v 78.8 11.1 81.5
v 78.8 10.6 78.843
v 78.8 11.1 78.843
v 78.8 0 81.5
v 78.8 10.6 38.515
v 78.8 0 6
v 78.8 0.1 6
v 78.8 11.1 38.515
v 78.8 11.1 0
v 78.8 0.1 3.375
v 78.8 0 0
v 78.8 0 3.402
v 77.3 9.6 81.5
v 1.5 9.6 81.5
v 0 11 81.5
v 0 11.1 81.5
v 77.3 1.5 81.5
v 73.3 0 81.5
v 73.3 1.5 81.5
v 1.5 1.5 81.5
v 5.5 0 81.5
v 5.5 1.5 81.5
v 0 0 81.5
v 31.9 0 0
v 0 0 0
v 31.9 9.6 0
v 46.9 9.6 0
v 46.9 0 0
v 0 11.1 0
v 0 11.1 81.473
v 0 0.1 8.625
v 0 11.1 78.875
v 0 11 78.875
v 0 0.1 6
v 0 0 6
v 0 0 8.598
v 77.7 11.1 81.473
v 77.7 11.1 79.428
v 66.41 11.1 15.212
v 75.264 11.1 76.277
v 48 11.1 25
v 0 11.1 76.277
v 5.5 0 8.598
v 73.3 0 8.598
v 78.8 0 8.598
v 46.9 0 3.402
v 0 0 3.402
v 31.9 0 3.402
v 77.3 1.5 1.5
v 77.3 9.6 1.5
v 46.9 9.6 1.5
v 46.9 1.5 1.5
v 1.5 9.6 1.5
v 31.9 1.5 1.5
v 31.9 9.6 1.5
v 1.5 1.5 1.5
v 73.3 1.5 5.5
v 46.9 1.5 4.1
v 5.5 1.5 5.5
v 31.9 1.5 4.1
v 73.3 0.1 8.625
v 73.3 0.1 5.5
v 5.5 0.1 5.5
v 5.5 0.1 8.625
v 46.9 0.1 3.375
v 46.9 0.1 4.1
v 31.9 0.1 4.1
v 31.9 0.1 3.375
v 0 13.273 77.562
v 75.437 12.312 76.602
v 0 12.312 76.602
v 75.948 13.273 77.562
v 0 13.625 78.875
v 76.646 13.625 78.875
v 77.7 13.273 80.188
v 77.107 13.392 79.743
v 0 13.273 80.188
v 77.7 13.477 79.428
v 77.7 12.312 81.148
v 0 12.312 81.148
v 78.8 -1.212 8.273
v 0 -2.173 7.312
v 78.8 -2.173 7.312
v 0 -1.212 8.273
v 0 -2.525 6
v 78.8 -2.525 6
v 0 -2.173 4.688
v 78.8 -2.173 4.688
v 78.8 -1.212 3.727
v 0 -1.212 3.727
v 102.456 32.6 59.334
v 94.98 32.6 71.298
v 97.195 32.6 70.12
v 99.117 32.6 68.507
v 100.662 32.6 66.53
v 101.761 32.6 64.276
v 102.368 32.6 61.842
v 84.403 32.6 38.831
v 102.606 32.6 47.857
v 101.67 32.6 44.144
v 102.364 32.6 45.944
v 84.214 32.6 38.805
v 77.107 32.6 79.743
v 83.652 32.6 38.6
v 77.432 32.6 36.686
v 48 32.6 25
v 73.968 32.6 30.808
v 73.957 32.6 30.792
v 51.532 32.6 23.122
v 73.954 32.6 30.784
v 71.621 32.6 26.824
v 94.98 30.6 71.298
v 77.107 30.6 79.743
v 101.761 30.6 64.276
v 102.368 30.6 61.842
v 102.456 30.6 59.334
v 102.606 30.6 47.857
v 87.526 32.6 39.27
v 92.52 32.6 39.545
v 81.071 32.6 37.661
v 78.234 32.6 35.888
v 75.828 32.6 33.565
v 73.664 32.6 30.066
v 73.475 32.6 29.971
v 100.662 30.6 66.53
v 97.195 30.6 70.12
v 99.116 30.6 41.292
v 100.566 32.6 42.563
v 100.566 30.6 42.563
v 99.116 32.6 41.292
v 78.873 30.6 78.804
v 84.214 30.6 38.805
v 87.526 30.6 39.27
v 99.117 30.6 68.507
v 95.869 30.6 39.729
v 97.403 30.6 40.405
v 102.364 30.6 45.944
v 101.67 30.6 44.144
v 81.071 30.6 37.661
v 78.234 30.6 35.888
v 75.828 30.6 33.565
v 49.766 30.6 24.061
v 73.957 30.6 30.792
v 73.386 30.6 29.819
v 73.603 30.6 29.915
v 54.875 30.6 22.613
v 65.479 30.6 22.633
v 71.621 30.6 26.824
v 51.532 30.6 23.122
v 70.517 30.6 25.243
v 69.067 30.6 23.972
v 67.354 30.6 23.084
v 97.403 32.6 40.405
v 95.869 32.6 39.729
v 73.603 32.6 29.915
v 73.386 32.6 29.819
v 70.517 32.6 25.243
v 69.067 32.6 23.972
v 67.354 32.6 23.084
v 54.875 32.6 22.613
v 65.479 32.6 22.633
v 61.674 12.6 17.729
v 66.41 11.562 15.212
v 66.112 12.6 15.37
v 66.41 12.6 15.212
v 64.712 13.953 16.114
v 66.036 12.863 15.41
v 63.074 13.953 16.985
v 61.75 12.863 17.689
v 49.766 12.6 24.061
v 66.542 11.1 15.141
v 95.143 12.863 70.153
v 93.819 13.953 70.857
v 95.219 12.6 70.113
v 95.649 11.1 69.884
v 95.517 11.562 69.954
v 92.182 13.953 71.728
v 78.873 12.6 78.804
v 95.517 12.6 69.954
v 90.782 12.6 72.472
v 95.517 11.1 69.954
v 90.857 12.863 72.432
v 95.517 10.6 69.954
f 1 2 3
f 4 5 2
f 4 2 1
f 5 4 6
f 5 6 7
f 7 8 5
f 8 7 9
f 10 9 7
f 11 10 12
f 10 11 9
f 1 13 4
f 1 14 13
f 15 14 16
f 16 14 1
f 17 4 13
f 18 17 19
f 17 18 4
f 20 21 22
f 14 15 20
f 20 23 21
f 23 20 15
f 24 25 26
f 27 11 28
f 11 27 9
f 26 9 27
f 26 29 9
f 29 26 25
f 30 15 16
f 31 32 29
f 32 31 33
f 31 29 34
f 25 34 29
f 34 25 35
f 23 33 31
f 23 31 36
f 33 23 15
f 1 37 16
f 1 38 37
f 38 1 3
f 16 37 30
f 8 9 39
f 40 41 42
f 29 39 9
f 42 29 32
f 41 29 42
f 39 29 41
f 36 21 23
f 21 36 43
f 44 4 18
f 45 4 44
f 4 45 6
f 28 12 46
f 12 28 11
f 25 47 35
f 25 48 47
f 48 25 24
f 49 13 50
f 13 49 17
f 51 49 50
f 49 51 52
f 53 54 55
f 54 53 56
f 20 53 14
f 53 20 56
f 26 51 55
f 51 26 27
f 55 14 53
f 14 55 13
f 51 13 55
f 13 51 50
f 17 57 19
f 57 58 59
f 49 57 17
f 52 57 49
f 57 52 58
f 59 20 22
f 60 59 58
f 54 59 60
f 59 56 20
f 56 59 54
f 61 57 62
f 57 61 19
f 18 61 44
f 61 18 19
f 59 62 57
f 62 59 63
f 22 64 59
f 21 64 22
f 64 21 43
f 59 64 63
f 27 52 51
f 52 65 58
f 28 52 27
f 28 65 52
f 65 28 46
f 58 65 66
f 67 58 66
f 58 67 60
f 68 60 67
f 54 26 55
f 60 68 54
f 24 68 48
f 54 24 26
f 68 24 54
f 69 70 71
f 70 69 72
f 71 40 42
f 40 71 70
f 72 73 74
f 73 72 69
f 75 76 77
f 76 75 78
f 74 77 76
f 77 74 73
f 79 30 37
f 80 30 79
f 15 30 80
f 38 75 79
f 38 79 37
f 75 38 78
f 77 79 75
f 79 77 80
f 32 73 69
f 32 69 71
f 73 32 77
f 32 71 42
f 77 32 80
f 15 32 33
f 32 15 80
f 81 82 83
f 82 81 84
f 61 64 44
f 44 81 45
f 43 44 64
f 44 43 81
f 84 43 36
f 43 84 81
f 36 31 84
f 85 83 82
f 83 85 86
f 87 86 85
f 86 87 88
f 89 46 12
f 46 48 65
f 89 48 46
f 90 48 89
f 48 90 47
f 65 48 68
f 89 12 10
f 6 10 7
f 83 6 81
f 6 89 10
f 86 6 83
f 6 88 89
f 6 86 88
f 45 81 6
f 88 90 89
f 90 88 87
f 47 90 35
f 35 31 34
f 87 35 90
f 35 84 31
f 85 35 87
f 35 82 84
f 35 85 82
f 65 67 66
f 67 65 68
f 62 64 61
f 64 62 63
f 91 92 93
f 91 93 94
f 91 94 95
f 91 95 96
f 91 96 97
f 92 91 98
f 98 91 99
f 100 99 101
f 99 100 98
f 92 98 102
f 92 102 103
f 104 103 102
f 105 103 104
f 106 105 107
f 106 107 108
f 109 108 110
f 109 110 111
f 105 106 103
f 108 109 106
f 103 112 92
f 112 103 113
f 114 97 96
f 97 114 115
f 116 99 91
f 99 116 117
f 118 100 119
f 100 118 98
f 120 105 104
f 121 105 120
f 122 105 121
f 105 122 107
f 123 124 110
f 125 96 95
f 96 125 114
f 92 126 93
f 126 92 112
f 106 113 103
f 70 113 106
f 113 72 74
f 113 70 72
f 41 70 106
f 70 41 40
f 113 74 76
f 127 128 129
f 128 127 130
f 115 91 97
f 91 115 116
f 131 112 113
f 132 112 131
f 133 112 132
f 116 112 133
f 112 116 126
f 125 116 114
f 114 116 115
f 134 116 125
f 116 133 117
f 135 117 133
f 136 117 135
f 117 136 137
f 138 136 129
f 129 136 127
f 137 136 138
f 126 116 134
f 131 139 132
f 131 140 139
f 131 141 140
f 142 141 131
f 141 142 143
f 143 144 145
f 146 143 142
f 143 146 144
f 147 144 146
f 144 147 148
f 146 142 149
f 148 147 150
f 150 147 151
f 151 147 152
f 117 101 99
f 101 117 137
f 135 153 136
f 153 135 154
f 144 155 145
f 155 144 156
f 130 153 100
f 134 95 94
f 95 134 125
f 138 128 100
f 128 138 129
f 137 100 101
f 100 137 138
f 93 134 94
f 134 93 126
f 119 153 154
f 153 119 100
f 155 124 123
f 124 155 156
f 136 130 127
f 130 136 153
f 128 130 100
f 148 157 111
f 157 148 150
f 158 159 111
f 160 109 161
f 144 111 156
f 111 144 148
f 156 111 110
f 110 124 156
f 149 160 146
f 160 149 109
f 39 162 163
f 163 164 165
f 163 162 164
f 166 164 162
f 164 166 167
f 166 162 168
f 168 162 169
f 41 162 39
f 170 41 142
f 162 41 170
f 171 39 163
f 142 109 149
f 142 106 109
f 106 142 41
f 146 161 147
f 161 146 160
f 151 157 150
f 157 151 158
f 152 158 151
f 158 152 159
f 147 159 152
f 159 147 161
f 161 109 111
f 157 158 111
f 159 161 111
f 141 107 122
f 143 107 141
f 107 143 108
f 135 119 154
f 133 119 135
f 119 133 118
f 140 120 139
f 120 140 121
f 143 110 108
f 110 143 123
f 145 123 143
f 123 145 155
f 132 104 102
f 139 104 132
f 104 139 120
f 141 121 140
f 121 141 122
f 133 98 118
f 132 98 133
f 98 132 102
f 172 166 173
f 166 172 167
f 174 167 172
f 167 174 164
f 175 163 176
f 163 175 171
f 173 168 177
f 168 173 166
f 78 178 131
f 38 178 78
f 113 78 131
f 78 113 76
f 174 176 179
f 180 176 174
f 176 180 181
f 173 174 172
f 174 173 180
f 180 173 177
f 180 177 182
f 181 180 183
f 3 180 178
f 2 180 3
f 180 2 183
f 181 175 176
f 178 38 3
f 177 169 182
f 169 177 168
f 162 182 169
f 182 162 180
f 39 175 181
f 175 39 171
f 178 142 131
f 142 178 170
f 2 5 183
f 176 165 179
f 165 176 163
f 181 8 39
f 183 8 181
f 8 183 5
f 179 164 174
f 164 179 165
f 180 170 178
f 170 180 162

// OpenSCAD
//
// A smartphone holder for 2019 BMW X3
//

// The 2019 BMW X3 has a "tablet"-like housing for
// the infotainment screen, which is what we clamp.
// Its bezel has additional thickness that we use.
bmw_x3_2019_depth = 18.0;
bmw_x3_2019_bezel = 16.0;
bmw_x3_2019_angle = 28.0;  // degrees

// initial was 38?
bmw_x3_cluster_to_dash = 48;

clamp_length = 62;
clamp_set_height = 25;

// These dimensions are for LG V20.
phone_width = 75.8;
phone_depth = 8.1;
phone_basket_height = 80; // not the full height of phone

// The thickness of basket's walls.
thickness = 1.5;

// Let's start with a simple basket made out of
// cubes, with some intersections to punch out.
// Then, we add stiffener ribs.

module basket_rib(length, dia) {
    $fn = 12;
    rad = dia/2;

    // This intersection makes a half-cylinder.
    intersection () {
        cylinder(length, rad, rad);
        translate([-1*(rad+0.1), 0, 0])
            cube([(rad+0.1)*2, rad+0.1, length]);
    }
}

// The width, depth, height determine the sizes of the
// pocket for the cellphone, so they are internal
// measurements of the basket.
module basket(width, depth, height) {
    bezel = 4.0;
    conn_width = 15;
    conn_depth = depth + thickness;

    difference() {
        difference() {

            // Main body
            difference() {
                cube([width + 2*thickness,
                      depth + 2*thickness,
                      height + thickness]);
                translate([thickness,
                           thickness,
                           thickness]) {
                    cube([width, depth, height+0.1]);
                }
            }

            // Front panel cutout
            translate([thickness+bezel, -0.1,
                       thickness+bezel]) {
                cube([width - 2*bezel,
                      thickness + 0.2,
                      height + 0.1 - bezel]);
            }
        }

        // Power connector cutout
        translate([thickness + width/2 - conn_width/2,
                   -0.1, -0.1])
            cube([conn_width,
                  conn_depth + 0.1,
                  bezel + 0.2]);
    }

    // We add a rib on top, just to be nice.
    // The basket is stiff enough without it.
    rib_dia = thickness * 3.5;
    translate ([0, depth + thickness*2 - 0.1,
                height + thickness - rib_dia/2]) {
        rotate (90, [0, 1, 0]) {
            // Making it shorter by 1.1 deconflicts it
            // with the clamp.
            basket_rib(width + thickness*2 - 1.1,
                       rib_dia);
        }
    }

    // We add a rib along the bottom in order to
    // complensate the cutout for power connector.
    translate ([0, 0.1, bezel + 2.0]) {
        rotate (90, [0, 1, 0]) {
            rotate (180, [0, 0, 1])
                basket_rib(width + thickness*2, rib_dia);
        }
    }
}

// The rear plate is absurdly complex because it
// has a concave edge. And it only works when tilted
// by the global angle, too.
module clamp_rear_plate(thickness, length) {
    difference () {
        union () {
            // outside edge
            hull () {
                translate ([0, 0, 20])
                    cube([4.0, thickness, length-20]);
                translate ([21, thickness, 51])
                    rotate (90, [1, 0, 0])
                        cylinder(thickness, 12, 12);
                translate ([30.4, thickness, 42.1])
                    rotate (90, [1, 0, 0])
                        cylinder(thickness, 8, 8);
                translate ([13, thickness, 20])
                    rotate (90, [1, 0, 0])
                        cylinder(thickness, 8, 8);
            }
            // bottom edge
            hull () {
                cube([4.0, thickness, length]);
                translate ([11.5, 0, length-15])
                    cube([10, thickness, 10]);
                translate ([12, thickness, 12.7])
                    rotate (90, [1, 0, 0])
                        cylinder(thickness, 8, 8);
                translate ([5.8, thickness, 5.4])
                    rotate (90, [1, 0, 0])
                        cylinder(thickness, 4.5, 4.5);
            }
        }
        // concave cutout
        hull () {
            translate ([50, thickness+0.1, 35])
                rotate (90, [1, 0, 0])
                    cylinder(thickness+0.2, 8, 8);
            translate ([36.2, thickness+0.1, 17.3])
                rotate (90, [1, 0, 0])
                    cylinder(thickness+0.2, 16, 16);
        }
    }
}

// The clamp is translated and rotated separately
// just make the design clearer. The body of he clamp
// extends somewhat beyond the bezel and the rear
// bevel radius.
module clamp_body(depth, bezel, length) {
    thickness = 2.0;  // clamp's "wall" or outline
    clamp_ridge_radius = 3;

    // spine
    cube([thickness, depth + thickness*2, length]);
    // front
    cube([bezel + thickness + clamp_ridge_radius*0.95,
          thickness, length]);
    // back
    translate([0, depth+thickness, 0])
        clamp_rear_plate(thickness, length);

    translate ([thickness + bezel,
                thickness - clamp_ridge_radius*0.5,
                0]) {
        // This intersection makes a half-cylinder.
        intersection () {
            cylinder(length,
                     clamp_ridge_radius,
                     clamp_ridge_radius);
            translate([-1*(clamp_ridge_radius+0.1), 0, 0])
                cube([clamp_ridge_radius*2 + 0.1,
                      clamp_ridge_radius + 0.1,
                      length]);
        }
    }
}

// This module is responsible for taking the clamp_body
// and moving it where it belongs.
module clamp_located(depth, bezel, angle) {
    // We used to translate right (by x) for a derivative
    // of phone_width and sin(angle). It turned out to be
    // a mistake. The actual translation distance is
    // determined by the BMW dash, so the phone is wedged
    // against the instrument cluster.
    translate ([bmw_x3_cluster_to_dash,
                phone_depth + thickness*2 - 0.5,
                clamp_set_height]) {
        rotate (angle, [0, 1, 0])
            clamp_body(depth, bezel, clamp_length);
    }
}

basket(phone_width, phone_depth, phone_basket_height);
clamp_located(bmw_x3_2019_depth, bmw_x3_2019_bezel,
              bmw_x3_2019_angle);
